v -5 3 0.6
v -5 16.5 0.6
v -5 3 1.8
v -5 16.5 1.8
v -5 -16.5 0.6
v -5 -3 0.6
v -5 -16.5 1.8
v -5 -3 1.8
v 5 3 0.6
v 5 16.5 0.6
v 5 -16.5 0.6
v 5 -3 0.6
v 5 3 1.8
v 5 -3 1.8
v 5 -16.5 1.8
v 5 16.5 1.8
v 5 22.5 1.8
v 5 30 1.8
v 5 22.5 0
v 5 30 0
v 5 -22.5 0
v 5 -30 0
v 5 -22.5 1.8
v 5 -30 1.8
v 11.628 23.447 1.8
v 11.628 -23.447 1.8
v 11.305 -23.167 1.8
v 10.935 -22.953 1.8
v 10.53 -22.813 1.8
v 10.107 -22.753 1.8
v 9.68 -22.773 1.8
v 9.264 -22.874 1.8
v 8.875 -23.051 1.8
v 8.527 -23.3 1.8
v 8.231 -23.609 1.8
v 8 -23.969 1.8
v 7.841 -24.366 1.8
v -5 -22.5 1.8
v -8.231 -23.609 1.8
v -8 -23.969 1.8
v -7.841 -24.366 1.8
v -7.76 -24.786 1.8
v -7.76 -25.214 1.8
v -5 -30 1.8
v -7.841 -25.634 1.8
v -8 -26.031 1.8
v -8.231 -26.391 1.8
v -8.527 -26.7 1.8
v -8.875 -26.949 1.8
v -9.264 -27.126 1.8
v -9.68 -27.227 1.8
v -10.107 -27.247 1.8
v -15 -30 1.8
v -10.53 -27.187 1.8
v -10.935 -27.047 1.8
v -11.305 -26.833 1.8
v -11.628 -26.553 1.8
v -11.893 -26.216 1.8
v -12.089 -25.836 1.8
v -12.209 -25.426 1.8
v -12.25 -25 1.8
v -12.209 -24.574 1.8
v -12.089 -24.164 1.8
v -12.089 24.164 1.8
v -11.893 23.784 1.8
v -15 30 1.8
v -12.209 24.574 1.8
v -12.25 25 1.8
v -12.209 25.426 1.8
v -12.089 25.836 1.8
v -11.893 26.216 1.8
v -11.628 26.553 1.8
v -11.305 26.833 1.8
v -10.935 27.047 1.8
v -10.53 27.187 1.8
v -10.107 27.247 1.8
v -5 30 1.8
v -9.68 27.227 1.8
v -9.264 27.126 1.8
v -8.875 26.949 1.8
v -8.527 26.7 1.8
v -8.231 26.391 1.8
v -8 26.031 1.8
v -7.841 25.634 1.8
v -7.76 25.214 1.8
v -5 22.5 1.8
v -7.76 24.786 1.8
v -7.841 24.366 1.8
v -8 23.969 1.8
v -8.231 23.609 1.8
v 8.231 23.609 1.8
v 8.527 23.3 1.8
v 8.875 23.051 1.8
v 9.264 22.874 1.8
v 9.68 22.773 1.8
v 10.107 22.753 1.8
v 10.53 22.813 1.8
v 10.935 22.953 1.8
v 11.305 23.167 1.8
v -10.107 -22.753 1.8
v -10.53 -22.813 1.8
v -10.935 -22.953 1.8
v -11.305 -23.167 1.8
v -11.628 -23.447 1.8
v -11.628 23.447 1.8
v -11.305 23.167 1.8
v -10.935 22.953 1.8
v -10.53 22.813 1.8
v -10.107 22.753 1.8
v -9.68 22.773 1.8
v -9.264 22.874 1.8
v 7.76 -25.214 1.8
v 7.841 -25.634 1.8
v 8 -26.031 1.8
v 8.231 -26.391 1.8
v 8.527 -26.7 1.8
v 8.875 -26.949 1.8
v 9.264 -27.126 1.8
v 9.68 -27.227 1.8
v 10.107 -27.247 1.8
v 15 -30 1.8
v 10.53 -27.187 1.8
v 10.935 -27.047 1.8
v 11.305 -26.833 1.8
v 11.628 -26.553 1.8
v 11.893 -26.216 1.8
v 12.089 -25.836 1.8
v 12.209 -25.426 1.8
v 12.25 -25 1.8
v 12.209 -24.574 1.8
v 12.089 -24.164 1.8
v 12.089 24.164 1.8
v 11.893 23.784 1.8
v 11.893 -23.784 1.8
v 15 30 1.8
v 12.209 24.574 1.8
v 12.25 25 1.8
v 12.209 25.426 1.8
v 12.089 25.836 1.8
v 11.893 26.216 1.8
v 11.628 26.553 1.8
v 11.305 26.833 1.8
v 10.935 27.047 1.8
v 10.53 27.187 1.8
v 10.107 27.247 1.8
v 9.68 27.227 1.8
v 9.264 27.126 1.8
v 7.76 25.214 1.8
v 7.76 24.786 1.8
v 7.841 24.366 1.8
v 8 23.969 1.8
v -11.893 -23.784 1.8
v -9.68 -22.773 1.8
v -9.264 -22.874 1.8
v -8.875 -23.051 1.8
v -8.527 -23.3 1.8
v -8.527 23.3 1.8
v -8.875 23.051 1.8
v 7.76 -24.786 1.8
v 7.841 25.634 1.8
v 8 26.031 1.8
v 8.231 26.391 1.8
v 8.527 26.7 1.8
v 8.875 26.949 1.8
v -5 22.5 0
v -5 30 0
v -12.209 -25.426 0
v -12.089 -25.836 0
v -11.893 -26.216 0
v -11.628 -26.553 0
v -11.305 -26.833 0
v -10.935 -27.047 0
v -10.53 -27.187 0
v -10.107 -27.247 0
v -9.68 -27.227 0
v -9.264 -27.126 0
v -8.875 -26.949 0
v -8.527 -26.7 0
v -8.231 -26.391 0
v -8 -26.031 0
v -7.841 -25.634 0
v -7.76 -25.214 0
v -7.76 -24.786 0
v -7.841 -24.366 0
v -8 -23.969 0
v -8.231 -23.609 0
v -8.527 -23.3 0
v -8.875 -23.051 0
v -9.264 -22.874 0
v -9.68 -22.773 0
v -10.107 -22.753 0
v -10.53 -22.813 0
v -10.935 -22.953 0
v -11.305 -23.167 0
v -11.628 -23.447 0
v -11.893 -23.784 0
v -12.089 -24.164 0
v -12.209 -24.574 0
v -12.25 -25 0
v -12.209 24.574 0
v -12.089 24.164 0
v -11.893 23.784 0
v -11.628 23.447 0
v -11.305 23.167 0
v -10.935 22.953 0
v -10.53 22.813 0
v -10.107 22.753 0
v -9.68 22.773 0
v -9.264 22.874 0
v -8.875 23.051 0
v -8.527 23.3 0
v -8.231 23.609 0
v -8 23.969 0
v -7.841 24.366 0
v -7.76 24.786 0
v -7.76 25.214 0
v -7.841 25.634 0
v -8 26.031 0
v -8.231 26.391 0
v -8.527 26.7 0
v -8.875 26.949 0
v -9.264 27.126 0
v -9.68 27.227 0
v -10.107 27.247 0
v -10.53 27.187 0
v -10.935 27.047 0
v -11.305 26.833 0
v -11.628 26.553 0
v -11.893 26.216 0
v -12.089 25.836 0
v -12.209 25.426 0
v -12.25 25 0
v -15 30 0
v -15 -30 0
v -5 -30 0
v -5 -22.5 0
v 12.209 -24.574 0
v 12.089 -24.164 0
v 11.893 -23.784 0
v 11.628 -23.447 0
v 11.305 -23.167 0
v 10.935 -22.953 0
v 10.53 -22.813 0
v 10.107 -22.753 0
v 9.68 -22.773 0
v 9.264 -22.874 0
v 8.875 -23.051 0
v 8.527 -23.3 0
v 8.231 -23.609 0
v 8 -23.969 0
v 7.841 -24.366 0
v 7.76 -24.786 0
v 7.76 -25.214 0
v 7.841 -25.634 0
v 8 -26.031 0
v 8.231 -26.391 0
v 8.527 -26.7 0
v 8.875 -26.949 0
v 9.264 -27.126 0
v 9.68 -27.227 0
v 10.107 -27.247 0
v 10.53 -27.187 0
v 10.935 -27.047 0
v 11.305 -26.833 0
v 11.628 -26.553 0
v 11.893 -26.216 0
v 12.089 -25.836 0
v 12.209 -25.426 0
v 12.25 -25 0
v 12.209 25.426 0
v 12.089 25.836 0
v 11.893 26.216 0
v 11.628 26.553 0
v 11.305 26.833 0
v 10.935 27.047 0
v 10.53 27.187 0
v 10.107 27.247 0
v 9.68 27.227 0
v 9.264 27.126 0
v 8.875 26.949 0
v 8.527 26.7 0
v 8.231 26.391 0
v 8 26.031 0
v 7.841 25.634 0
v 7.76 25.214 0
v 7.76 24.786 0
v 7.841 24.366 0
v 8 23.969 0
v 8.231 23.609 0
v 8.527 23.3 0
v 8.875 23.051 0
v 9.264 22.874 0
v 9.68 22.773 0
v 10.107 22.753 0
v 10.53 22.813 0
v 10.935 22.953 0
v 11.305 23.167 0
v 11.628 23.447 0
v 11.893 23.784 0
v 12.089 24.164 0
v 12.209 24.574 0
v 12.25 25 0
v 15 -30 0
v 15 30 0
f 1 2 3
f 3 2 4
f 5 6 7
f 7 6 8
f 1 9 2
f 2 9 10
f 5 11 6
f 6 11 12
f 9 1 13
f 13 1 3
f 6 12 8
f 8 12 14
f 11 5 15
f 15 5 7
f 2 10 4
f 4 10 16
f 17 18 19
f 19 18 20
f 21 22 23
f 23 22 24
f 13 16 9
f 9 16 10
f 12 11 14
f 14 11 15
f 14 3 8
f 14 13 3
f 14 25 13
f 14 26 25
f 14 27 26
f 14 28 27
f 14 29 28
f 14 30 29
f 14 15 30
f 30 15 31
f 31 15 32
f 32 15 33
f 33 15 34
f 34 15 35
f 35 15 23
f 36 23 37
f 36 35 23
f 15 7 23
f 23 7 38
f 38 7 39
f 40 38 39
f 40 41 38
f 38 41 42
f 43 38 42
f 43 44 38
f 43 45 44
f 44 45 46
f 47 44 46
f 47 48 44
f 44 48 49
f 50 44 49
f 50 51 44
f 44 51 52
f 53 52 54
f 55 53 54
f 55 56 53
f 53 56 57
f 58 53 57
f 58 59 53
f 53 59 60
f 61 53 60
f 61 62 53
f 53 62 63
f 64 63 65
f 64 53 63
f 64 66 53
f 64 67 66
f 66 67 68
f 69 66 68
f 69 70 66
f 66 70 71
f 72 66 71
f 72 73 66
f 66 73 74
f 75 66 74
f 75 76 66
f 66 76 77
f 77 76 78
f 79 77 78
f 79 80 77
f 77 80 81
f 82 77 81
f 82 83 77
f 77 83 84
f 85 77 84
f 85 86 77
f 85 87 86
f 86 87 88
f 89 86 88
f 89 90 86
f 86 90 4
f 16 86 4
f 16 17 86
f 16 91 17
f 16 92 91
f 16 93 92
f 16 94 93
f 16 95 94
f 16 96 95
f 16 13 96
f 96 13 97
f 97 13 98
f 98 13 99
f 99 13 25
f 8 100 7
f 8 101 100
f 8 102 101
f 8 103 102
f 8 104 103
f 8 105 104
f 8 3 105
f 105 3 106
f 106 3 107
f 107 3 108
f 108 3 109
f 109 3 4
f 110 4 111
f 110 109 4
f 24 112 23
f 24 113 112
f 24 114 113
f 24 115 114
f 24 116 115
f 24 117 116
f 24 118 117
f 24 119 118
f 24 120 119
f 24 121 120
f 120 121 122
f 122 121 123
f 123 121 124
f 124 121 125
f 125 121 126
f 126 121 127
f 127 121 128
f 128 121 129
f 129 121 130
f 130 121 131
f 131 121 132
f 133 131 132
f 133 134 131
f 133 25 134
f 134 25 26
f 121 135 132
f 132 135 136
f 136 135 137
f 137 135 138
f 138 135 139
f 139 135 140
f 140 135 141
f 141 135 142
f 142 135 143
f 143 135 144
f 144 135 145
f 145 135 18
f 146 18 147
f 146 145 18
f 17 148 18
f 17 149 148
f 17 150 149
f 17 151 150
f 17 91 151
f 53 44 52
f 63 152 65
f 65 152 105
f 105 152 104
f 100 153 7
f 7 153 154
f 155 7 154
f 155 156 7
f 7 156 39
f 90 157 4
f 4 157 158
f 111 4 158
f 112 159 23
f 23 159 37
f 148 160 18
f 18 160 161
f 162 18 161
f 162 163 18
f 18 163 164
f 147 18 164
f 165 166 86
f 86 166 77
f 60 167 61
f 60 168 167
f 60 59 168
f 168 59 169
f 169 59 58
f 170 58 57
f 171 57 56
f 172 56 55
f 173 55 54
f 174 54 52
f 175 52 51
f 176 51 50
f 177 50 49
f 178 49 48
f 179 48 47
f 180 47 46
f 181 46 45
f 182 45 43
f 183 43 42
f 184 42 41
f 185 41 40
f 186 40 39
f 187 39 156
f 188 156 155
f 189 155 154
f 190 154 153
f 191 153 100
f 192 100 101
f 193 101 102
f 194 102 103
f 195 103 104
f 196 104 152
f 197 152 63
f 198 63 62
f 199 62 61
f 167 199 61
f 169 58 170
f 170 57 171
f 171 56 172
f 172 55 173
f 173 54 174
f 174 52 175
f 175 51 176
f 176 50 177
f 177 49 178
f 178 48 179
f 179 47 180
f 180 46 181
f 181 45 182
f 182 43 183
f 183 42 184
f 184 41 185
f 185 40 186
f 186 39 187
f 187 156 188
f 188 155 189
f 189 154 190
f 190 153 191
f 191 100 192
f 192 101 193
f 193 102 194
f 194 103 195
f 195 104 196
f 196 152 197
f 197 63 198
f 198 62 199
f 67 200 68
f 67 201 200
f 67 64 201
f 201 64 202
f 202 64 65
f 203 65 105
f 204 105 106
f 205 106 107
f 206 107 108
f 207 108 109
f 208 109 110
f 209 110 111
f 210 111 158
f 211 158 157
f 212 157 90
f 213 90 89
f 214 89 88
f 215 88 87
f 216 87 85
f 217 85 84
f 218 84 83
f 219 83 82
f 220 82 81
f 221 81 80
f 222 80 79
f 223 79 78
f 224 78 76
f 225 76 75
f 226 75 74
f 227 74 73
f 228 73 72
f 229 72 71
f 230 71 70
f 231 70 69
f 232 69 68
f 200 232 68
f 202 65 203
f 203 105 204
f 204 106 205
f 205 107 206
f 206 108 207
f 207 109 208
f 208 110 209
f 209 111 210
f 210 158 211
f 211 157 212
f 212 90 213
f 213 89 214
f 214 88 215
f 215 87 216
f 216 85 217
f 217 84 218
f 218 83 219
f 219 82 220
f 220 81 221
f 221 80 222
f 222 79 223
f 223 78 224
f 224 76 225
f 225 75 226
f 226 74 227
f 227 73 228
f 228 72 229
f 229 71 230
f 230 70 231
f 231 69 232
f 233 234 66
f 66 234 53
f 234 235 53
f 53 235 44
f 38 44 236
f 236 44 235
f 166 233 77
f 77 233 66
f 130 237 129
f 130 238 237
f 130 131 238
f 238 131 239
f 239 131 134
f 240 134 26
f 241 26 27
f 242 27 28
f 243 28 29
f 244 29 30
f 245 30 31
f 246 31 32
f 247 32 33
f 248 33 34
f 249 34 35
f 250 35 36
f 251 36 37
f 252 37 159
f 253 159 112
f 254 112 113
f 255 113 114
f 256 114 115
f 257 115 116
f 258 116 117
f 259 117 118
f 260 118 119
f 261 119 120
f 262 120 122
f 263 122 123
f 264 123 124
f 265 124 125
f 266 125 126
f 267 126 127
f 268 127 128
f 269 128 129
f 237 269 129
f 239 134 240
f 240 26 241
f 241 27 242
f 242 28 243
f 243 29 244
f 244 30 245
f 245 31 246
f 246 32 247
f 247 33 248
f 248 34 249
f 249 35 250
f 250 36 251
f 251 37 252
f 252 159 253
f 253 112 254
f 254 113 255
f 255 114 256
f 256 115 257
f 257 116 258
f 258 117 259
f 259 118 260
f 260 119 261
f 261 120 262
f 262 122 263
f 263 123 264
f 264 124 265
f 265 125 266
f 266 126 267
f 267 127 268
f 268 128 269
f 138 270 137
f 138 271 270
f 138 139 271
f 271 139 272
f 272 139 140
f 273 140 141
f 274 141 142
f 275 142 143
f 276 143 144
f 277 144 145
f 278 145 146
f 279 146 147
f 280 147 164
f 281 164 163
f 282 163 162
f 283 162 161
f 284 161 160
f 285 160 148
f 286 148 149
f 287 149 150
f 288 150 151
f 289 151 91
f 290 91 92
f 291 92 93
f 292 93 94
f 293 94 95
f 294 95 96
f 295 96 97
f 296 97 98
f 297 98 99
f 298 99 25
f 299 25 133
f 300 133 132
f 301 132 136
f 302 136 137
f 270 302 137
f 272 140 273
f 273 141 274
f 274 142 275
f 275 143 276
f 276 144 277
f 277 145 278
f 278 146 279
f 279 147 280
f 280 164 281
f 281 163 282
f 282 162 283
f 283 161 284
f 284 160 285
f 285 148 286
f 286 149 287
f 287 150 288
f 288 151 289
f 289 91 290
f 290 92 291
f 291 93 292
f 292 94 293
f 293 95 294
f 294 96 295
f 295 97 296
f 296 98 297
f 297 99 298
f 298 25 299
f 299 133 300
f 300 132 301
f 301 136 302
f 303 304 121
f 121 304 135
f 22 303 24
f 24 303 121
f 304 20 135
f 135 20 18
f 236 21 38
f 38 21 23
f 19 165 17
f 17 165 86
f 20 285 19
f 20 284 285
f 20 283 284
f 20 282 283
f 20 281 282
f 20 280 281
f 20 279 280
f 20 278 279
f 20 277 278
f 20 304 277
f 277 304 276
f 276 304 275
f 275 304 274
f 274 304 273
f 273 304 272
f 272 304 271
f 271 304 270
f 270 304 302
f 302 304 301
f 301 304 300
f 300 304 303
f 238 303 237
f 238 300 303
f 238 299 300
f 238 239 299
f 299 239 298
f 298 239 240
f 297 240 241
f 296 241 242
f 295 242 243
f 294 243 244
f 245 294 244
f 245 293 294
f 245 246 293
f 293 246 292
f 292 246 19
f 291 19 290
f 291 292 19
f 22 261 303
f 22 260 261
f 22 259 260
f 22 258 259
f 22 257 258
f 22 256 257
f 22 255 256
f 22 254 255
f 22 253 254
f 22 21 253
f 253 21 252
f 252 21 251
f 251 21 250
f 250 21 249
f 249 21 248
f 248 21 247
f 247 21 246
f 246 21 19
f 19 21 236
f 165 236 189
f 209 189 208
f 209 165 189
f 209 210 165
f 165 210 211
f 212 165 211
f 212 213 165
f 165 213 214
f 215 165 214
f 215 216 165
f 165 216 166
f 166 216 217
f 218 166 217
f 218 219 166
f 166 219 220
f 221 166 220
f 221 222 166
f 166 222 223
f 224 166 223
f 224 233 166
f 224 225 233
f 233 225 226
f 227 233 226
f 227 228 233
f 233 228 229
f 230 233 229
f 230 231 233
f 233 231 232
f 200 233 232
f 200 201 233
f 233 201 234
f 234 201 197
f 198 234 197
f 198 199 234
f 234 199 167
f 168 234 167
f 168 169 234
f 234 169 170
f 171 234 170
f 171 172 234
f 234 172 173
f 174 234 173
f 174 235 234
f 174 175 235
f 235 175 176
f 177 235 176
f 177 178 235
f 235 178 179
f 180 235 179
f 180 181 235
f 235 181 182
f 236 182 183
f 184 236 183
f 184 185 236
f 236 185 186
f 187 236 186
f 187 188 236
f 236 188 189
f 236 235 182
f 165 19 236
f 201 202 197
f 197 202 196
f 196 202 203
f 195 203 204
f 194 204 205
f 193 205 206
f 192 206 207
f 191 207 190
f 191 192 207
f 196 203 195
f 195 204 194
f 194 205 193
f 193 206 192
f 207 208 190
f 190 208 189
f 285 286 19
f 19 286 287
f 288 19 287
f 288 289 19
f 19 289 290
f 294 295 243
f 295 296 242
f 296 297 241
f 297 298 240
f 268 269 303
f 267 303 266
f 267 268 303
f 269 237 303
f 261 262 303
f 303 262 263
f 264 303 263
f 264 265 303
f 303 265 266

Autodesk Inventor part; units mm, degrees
ref_plane "YZ Plane" through (0, 0, 0) normal (1, 0, 0) x (0, 1, 0)
ref_plane "XZ Plane" through (0, 0, 0) normal (0, 1, 0) x (-1, 0, 0)
ref_plane "XY Plane" through (0, 0, 0) normal (0, 0, 1) x (1, 0, 0)
sketch "Sketch1" plane through (0, 0, 0) normal (0, 0, 1) x (1, 0, 0)
  line L0 (0, 35.9415) -> (0, -22.75) construction
  line L1 (5, 30) -> (15, 30)
  line L2 (15, 30) -> (15, -30)
  line L3 (15, -30) -> (5, -30)
  line L4 (5, -30) -> (5, 30)
  circle A0 centre (10, 25) radius 2.25
  circle A1 centre (10, -25) radius 2.25
  line L5 (-5, 22.5) -> (5, 22.5)
  line L6 (5, 22.5) -> (5, -22.5)
  line L7 (5, -22.5) -> (-5, -22.5)
  line L8 (-5, -22.5) -> (-5, 22.5)
  line L9 (-5, 22.5) -> (5, 22.5)
  line L10 (5, 22.5) -> (5, 16.5)
  line L11 (5, 16.5) -> (-5, 16.5)
  line L12 (-5, 16.5) -> (-5, 22.5)
  line L13 (-5, -22.5) -> (5, -22.5)
  line L14 (5, -22.5) -> (5, -16.5)
  line L15 (5, -16.5) -> (-5, -16.5)
  line L16 (-5, -16.5) -> (-5, -22.5)
  line L17 (-5, 3) -> (5, 3)
  line L18 (5, 3) -> (5, -3)
  line L19 (5, -3) -> (-5, -3)
  line L20 (-5, -3) -> (-5, 3)
  point P0 (0, 0)
  point P1 (15, 0)
  point P2 (5, 0)
  point P3 (0, 22.5)
  point P4 (5, 0)
  point P5 (5, 0)
  dimension "d28" = 60
  dimension "d29" = 4.5
  dimension "d30" = 4.5
  dimension "d31" = 5
  dimension "d32" = 5
  dimension "d33" = 10
  dimension "d36" = 10
  dimension "d37" = 45
  dimension "d38" = 5
  dimension "d39" = 5
  dimension "d42" = 6
  dimension "d43" = 6
  dimension "d44" = 6
extrude "Extrusion3" add sketch "Sketch1" along normal blind 0.6 contours L4 L11 L8 L5 | L4 L17 L8 L11 | L4 L19 L8 L17 | L7 L8 L15 L4 | L4 L15 L8 L19
extrude "Extrusion4" add sketch "Sketch1" along normal blind 0.6 contours L1 L2 L3 L4
mirror "Mirror1" about plane through (0, 0, 0) normal (1, 0, 0) of "Extrusion4"
extrude "Extrusion5" add sketch "Sketch1" along normal blind 1.8 contours L1 L2 L3 L4
extrude "Extrusion6" add sketch "Sketch1" along normal blind 1.8 contours L4 L11 L8 L5 | L4 L19 L8 L17 | L7 L8 L15 L4
mirror "Mirror2" about plane through (0, 0, 0) normal (1, 0, 0) of "Extrusion5", "Extrusion6"
equation "\"d29\" = screw"
equation "\"d30\" = screw"
equation "\"screw\" = 4.5"
properties part number "FoldLink" material "Rubber, Silicone"
